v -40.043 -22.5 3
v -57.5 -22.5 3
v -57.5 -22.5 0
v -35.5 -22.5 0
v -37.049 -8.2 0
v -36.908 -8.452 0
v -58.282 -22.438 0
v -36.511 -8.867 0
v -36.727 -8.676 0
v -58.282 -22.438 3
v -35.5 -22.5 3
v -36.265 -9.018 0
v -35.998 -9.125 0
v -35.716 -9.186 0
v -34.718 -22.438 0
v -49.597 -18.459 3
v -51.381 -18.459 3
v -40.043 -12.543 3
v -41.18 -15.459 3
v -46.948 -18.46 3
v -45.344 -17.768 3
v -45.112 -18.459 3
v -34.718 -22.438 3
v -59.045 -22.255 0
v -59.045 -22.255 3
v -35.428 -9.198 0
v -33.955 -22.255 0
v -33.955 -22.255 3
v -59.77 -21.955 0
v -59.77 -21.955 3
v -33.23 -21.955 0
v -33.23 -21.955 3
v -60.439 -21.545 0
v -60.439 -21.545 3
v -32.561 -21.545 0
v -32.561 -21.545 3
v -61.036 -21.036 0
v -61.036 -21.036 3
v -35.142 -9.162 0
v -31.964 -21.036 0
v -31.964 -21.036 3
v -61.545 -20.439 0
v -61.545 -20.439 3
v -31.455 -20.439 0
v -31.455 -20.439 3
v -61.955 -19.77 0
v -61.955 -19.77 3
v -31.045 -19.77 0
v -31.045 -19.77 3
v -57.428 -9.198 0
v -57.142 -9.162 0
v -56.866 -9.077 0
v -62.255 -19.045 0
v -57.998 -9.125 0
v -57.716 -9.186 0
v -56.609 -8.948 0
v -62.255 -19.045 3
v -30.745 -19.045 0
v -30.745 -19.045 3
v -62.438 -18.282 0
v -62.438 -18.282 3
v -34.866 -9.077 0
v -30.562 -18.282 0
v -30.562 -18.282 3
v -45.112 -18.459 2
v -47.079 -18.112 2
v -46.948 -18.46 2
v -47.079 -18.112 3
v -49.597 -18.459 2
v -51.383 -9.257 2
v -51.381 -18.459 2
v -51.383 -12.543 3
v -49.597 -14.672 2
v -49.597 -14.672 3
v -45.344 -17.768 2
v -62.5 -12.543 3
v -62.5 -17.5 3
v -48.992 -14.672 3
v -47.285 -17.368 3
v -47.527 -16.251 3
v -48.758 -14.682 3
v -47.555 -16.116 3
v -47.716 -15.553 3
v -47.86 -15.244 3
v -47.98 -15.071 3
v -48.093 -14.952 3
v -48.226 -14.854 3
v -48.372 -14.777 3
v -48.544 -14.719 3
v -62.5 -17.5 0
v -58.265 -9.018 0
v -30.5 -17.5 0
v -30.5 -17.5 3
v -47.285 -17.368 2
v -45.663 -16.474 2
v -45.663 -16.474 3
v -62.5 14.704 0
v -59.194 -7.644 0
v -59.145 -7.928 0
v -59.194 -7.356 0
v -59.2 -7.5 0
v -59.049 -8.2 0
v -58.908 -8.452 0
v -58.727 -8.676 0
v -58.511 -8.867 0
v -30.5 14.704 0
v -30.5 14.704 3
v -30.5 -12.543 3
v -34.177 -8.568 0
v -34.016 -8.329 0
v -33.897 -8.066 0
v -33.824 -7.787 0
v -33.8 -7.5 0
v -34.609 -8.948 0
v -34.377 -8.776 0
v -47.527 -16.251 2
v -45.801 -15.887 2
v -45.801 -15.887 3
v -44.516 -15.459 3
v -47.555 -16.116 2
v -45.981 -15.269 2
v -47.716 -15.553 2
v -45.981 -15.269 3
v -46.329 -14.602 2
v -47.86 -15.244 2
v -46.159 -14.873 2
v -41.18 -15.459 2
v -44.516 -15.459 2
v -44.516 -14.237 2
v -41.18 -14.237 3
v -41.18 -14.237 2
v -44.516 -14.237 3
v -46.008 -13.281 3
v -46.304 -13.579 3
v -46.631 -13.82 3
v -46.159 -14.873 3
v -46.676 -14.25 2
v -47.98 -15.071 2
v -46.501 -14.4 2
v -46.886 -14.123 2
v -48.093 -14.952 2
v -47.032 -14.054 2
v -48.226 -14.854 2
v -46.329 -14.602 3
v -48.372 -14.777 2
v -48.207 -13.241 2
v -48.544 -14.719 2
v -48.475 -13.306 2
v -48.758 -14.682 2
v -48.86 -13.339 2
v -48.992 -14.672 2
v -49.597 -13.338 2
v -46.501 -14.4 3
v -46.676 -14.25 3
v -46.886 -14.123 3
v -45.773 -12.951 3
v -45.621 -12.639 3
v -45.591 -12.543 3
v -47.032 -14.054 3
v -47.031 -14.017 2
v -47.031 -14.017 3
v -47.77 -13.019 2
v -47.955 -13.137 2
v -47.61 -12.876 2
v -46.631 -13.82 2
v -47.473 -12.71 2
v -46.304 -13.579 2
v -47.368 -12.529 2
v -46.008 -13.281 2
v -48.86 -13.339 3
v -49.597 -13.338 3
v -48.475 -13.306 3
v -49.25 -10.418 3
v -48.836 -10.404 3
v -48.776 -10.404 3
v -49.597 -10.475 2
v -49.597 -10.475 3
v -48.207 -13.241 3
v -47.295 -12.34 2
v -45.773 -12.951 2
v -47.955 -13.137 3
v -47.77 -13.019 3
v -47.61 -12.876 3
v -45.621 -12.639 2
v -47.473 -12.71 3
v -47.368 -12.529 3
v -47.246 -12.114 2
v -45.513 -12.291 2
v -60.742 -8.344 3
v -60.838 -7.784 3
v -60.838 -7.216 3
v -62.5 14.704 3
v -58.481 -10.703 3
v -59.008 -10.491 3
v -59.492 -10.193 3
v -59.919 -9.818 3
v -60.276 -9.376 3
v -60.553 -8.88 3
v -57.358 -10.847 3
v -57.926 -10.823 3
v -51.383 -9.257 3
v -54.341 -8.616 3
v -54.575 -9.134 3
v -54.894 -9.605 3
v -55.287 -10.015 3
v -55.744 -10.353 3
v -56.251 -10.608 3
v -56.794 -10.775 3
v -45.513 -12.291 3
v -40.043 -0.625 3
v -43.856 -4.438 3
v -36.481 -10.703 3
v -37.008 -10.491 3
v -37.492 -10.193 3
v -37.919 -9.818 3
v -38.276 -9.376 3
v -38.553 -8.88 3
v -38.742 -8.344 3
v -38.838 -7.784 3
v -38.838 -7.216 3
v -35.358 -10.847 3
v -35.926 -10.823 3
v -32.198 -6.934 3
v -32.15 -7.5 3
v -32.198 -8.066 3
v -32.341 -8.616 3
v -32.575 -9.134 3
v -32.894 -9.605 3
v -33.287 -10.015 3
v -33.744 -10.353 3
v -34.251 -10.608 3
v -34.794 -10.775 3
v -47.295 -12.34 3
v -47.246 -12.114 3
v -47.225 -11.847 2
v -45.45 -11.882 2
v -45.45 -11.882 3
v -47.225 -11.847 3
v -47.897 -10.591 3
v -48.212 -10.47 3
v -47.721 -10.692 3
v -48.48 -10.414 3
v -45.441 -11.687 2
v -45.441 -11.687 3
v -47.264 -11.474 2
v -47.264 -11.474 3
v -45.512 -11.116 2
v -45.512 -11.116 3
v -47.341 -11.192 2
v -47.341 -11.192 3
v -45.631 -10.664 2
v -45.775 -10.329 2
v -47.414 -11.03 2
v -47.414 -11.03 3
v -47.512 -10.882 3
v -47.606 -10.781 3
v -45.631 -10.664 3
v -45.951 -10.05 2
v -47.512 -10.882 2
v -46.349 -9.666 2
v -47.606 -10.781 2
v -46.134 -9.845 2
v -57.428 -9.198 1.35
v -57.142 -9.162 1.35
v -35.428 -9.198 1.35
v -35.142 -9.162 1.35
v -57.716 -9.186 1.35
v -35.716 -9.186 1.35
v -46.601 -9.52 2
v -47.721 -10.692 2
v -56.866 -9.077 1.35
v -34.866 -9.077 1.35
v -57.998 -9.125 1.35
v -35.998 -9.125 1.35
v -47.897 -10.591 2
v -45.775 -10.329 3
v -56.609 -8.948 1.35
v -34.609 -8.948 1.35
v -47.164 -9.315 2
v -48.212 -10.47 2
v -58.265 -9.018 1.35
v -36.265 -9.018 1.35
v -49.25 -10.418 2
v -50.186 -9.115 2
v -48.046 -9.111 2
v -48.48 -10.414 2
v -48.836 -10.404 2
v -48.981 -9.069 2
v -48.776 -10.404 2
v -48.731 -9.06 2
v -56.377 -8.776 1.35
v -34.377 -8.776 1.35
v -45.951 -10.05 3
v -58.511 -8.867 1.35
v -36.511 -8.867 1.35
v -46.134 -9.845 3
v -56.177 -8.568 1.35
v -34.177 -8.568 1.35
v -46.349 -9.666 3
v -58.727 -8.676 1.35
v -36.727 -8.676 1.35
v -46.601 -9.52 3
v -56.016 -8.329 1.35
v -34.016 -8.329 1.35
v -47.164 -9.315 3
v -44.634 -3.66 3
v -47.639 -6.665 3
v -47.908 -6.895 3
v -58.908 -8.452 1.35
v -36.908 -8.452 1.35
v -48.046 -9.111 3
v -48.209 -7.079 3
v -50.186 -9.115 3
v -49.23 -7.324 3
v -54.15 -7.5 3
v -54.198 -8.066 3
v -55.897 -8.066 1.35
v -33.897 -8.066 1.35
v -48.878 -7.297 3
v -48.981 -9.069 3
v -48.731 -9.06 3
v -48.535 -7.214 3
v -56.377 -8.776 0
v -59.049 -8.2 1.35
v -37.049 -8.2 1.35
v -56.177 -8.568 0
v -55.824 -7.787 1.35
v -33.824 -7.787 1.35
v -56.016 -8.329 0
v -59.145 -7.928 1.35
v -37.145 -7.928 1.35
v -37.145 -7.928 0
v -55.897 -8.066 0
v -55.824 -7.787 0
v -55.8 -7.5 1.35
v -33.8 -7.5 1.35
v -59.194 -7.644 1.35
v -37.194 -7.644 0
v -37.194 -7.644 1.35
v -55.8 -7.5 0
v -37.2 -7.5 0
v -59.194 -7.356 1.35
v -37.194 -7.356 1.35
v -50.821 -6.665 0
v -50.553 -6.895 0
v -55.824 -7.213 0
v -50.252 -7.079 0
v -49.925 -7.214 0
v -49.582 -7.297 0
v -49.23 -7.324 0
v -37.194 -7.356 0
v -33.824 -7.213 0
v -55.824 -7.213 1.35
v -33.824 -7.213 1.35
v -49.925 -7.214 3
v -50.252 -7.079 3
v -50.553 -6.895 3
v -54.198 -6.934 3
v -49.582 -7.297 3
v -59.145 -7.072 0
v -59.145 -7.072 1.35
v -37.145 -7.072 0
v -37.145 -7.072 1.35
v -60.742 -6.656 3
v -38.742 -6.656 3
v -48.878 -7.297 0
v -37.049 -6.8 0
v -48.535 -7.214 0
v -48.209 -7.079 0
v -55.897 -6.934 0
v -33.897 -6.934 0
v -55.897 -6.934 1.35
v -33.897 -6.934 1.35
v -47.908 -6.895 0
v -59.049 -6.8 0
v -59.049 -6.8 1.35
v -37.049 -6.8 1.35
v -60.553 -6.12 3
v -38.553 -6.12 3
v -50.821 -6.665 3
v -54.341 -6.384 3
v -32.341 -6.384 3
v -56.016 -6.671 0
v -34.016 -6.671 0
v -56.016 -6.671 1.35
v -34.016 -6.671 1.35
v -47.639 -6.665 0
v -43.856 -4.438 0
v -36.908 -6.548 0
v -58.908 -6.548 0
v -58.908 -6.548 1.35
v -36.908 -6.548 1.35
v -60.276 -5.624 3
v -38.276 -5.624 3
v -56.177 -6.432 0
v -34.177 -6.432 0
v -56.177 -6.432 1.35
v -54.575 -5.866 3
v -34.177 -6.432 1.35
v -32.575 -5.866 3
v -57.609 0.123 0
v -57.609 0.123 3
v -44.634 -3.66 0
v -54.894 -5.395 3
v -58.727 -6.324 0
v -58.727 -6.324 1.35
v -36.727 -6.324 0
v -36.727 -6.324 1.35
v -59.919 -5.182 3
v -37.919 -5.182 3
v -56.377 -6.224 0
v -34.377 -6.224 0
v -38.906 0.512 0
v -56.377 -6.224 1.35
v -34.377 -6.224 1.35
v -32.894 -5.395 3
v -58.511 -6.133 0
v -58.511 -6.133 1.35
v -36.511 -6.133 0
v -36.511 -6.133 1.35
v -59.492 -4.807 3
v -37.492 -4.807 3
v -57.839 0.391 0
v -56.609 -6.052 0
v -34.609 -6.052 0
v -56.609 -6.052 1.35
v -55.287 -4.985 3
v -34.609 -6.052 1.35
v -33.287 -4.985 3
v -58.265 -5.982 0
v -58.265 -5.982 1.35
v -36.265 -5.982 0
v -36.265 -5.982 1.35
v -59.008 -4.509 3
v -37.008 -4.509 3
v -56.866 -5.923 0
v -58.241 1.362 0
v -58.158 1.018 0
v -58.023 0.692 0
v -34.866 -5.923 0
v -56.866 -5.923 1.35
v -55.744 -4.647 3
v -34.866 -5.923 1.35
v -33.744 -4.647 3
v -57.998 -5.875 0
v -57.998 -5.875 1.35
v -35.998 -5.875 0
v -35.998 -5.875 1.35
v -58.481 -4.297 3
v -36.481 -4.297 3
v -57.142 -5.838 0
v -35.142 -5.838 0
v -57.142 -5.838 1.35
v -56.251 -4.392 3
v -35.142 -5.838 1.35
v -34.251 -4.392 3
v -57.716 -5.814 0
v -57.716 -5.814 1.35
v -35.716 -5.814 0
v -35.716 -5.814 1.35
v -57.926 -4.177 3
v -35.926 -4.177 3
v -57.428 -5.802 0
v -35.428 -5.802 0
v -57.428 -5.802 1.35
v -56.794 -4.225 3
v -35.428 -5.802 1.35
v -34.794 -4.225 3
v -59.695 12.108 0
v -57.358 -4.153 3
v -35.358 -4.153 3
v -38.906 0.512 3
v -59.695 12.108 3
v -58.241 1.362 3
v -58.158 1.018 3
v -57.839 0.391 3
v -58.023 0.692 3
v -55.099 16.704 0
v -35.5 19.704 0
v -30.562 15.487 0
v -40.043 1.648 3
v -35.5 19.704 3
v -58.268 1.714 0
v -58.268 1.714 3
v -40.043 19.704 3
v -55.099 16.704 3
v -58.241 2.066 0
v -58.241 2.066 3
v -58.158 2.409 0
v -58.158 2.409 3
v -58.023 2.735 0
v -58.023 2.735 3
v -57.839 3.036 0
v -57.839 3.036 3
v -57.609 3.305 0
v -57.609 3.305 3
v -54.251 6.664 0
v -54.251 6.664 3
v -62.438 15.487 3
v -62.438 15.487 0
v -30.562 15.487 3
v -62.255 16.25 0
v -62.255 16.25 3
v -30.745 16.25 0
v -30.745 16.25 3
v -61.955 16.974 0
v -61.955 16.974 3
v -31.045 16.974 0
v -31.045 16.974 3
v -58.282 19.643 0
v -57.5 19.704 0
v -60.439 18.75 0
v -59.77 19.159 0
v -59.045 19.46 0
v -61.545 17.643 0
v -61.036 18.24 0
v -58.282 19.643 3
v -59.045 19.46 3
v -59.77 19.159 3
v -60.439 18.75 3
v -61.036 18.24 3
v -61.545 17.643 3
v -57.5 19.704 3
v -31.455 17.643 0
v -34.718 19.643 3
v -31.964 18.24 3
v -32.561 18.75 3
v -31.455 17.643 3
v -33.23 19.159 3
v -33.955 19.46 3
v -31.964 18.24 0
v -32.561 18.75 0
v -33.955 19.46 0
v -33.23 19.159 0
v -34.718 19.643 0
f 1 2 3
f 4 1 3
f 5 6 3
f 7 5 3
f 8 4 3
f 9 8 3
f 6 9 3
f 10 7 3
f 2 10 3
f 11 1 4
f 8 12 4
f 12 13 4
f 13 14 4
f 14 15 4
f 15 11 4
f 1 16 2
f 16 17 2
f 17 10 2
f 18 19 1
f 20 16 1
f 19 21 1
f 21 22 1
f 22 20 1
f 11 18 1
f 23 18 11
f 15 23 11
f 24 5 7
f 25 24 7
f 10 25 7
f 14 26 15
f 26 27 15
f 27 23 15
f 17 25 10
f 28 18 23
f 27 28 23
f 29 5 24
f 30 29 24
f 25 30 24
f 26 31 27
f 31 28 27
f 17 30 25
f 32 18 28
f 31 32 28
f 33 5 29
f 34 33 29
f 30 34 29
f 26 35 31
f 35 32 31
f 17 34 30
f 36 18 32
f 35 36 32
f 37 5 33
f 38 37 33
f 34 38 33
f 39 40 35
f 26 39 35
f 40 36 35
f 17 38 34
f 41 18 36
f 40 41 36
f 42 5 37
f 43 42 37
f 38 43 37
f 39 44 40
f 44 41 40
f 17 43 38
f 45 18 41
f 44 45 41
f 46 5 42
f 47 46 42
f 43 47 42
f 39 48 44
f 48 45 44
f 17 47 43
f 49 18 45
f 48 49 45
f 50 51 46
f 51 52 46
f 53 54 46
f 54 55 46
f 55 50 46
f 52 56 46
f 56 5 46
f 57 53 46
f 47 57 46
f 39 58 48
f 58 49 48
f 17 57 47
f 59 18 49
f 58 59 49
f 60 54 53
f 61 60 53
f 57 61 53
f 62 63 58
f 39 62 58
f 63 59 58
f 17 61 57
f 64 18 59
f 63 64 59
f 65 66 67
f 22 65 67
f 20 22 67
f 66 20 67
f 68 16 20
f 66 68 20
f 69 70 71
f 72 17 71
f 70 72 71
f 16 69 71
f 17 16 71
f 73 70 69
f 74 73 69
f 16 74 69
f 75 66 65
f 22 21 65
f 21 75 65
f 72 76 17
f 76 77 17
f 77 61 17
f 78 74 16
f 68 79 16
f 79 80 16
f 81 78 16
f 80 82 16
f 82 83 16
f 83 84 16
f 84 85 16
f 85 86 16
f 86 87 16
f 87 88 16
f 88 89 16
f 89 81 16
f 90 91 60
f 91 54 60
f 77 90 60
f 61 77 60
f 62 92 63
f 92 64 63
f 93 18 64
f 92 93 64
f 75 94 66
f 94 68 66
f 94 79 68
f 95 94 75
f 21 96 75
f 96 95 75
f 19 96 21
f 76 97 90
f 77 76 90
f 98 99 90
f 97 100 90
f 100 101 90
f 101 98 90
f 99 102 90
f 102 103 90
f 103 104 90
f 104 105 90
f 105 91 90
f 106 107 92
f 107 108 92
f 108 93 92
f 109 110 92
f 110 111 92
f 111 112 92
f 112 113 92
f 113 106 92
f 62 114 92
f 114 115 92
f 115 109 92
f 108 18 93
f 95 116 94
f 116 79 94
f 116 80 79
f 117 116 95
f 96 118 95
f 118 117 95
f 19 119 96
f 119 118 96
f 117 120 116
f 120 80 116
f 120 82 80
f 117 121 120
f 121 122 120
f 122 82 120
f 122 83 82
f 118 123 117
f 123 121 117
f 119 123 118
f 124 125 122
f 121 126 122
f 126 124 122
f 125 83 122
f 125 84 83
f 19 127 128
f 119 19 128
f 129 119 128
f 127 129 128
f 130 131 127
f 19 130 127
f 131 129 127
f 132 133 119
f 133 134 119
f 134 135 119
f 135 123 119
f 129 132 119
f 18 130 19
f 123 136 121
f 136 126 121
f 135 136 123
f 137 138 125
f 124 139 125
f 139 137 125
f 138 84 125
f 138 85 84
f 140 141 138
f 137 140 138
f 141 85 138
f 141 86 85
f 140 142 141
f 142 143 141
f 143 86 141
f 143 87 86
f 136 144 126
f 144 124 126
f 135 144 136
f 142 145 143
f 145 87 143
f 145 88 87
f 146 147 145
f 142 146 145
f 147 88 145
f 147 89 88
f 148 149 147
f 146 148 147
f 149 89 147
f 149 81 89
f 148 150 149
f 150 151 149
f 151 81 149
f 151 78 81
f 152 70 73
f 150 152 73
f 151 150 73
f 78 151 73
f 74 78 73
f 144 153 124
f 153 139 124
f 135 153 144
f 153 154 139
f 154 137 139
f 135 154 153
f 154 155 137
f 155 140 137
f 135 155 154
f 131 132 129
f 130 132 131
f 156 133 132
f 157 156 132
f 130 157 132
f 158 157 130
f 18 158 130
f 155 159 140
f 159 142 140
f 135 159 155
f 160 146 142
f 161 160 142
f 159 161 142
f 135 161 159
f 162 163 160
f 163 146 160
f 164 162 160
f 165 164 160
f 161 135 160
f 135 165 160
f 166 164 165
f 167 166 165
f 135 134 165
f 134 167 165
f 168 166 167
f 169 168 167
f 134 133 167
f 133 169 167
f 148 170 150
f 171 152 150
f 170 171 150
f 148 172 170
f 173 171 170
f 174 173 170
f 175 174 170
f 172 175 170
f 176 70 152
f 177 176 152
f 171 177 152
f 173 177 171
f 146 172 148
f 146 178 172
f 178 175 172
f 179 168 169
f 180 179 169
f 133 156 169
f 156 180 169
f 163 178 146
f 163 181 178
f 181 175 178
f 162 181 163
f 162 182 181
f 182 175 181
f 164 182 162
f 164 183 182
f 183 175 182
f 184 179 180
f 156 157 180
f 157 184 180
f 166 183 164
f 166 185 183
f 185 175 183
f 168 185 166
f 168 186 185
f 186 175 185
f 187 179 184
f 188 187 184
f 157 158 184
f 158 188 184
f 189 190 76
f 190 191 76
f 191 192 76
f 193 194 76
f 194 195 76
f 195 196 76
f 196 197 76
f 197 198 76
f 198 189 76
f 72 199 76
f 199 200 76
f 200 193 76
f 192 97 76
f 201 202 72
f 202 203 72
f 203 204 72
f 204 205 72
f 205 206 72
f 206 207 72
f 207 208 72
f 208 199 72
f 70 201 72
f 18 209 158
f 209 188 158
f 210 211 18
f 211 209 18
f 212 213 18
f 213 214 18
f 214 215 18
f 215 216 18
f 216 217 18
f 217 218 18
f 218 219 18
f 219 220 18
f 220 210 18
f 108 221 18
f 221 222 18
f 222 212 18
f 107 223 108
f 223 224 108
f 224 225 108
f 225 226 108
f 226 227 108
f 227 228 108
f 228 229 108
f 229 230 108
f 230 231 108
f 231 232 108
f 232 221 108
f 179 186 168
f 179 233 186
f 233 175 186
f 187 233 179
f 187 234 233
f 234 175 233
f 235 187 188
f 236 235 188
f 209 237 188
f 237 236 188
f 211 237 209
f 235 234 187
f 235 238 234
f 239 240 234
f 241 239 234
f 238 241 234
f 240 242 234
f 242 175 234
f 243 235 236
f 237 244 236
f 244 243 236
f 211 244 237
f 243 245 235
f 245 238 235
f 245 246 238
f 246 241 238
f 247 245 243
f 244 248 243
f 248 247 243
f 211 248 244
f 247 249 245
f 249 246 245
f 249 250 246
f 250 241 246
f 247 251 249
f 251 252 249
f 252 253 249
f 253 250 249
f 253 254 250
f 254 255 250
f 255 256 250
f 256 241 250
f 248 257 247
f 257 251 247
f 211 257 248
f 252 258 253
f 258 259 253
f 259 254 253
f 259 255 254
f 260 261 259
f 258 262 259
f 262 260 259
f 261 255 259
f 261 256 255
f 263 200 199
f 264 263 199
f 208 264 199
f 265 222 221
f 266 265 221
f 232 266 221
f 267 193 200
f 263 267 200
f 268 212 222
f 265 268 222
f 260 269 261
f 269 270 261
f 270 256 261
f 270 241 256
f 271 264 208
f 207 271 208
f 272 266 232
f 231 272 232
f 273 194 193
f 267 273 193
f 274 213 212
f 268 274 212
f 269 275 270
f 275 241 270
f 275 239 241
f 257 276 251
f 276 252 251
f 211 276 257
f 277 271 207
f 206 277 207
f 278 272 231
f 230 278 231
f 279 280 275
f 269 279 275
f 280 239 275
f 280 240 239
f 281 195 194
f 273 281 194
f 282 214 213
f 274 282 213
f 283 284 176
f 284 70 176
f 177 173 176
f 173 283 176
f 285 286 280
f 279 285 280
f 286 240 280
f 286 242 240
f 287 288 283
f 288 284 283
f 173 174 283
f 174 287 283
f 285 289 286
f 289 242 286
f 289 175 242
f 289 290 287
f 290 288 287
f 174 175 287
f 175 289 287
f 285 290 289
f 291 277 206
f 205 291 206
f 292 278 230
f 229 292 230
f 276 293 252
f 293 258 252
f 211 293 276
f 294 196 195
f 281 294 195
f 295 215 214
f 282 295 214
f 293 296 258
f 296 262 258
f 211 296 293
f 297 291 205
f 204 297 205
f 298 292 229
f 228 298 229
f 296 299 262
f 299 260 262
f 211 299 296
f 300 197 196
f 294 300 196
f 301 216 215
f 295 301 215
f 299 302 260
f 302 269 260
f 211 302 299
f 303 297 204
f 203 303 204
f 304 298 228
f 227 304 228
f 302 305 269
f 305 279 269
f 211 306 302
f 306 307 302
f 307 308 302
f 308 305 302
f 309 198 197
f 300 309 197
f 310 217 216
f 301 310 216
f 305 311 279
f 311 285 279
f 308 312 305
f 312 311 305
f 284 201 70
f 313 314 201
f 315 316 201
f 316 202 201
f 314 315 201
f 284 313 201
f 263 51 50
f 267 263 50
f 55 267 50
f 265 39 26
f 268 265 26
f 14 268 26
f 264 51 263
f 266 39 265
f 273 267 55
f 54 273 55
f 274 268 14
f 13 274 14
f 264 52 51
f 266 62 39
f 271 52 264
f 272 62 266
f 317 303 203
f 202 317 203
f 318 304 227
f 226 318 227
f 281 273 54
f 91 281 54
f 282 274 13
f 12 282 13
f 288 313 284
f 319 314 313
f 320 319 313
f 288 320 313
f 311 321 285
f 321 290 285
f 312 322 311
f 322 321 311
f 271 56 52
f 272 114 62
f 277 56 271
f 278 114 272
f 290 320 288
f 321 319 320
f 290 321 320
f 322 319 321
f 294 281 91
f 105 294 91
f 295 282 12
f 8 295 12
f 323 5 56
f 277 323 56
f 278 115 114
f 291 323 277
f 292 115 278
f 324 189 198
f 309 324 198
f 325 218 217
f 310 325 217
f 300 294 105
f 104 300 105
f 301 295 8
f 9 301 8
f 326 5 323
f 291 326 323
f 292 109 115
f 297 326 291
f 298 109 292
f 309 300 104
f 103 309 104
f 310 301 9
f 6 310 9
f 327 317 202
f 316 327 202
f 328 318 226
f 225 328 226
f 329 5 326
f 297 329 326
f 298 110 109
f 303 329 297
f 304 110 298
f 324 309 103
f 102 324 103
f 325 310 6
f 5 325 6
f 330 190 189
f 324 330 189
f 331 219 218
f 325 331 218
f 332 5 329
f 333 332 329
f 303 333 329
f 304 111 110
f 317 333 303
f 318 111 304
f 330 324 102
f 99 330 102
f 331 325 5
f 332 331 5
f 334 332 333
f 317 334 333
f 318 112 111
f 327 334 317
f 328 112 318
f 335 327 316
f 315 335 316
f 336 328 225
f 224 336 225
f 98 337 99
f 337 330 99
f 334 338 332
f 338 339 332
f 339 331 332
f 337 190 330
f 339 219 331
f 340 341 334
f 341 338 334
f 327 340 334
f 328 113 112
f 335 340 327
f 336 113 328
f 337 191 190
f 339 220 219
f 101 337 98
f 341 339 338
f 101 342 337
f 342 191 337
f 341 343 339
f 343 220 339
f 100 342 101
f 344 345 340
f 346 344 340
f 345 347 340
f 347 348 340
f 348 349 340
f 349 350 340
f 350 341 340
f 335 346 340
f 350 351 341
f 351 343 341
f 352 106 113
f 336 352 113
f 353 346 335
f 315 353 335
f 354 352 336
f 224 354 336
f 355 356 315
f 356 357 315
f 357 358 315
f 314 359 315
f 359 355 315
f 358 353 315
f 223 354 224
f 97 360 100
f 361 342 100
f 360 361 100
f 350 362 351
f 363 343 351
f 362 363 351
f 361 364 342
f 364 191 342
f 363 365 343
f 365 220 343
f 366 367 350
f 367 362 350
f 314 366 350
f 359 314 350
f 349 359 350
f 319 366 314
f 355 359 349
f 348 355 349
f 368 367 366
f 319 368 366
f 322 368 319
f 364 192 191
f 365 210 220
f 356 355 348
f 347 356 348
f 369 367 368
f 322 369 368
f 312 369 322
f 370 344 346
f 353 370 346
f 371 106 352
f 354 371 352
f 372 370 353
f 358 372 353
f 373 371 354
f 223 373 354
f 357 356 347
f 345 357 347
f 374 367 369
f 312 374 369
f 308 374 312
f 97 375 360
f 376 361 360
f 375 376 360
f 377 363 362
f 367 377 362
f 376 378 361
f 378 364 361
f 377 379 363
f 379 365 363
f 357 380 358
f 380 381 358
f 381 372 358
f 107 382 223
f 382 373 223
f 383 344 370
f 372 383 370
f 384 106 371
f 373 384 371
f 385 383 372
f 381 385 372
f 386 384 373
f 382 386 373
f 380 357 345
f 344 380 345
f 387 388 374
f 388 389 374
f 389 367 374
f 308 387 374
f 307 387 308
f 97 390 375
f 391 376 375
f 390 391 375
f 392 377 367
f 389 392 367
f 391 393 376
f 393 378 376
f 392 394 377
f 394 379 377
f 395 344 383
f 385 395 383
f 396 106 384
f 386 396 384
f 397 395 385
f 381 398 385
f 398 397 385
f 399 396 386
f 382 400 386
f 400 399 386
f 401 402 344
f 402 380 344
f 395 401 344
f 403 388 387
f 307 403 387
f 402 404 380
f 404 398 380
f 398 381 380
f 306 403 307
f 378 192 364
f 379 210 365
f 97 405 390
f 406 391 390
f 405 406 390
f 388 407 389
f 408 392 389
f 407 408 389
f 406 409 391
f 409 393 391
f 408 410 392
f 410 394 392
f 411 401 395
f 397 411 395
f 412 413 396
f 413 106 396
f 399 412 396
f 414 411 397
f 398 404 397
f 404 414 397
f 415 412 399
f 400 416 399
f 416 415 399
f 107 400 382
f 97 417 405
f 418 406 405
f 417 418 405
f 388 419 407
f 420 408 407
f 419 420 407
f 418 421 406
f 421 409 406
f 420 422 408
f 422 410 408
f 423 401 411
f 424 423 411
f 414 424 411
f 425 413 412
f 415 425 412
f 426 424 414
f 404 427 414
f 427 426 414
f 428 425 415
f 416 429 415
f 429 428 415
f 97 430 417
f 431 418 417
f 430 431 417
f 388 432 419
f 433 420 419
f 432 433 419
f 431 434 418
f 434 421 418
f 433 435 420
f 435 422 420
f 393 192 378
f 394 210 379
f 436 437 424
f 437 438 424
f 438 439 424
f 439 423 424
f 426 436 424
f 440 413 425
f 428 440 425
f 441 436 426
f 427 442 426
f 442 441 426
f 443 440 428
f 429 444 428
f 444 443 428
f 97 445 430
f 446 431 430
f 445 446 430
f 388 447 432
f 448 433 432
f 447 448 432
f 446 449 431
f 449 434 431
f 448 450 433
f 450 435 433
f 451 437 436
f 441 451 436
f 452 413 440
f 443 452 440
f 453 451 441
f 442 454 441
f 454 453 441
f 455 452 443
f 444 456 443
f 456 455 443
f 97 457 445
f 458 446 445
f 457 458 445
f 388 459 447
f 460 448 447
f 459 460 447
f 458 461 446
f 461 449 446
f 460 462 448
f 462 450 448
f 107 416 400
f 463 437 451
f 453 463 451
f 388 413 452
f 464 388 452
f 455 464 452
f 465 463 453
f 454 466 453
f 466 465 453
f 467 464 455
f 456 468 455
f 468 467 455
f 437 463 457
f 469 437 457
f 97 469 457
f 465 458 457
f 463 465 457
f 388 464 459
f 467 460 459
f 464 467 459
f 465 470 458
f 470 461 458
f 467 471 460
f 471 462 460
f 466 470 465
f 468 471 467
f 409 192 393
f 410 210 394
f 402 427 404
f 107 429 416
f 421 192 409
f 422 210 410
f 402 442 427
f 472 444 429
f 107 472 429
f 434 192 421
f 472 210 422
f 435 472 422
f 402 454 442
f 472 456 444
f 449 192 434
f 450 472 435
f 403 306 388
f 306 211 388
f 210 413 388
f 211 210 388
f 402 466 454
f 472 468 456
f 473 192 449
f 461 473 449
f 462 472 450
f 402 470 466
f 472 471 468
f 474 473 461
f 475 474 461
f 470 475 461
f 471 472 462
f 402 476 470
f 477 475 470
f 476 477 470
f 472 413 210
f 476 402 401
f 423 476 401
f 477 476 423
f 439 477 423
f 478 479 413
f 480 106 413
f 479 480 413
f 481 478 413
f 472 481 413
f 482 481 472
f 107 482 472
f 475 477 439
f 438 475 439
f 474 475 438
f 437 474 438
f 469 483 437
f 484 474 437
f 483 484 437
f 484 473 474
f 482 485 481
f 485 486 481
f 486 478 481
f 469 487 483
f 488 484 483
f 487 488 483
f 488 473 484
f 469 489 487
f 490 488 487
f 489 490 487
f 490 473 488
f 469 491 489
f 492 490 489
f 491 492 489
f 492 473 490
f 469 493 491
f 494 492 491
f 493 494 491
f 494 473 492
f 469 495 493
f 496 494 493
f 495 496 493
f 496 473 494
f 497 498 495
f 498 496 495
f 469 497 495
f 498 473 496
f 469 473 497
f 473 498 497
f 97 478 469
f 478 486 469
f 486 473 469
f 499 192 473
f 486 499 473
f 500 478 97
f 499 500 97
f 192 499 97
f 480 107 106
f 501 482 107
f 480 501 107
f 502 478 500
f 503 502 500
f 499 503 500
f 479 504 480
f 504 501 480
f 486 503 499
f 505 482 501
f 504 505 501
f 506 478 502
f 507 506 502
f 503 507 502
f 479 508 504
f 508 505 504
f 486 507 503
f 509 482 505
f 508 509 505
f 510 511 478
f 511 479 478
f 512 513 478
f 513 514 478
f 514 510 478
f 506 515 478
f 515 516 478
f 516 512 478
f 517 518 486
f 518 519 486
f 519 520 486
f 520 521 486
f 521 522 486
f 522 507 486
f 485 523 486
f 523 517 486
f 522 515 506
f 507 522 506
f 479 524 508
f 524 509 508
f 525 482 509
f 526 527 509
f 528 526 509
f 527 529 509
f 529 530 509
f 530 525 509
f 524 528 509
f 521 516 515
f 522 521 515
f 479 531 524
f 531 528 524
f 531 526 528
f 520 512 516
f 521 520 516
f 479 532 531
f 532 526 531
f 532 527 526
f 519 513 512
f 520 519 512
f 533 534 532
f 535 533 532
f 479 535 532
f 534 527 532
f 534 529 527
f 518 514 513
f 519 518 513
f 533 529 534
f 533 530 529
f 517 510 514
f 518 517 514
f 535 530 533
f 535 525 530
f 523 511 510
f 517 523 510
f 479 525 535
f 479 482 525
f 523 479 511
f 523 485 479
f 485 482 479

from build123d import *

# Parameters (mm, degrees)
SKETCH2_W                                           = 32
SKETCH2_H                                           = 42.204432033
BOSS_EXTRUDE2_DEPTH                                 = 3
FILLET1_R                                           = 5
SKETCH3_W                                           = 3.336226562
SKETCH3_H                                           = 1.222113554
CUT_EXTRUDE1_DEPTH                                  = 1
CSK_FOR_M3_COUNTERSUNK_FLAT_HEAD_SCREW1_D           = 3.4
CSK_FOR_M3_COUNTERSUNK_FLAT_HEAD_SCREW1_DEPTH       = 20
CSK_FOR_M3_COUNTERSUNK_FLAT_HEAD_SCREW1_CSINK_D     = 6.7
CSK_FOR_M3_COUNTERSUNK_FLAT_HEAD_SCREW1_CSINK_ANGLE = 90
CSK_FOR_M3_COUNTERSUNK_FLAT_HEAD_SCREW1_TIP         = 1.021463052
CUT_EXTRUDE3_DEPTH                                  = 10


with BuildPart() as part:
    # Sketch2 → Boss-Extrude2 (new body)
    with BuildSketch(Plane.XY):
        with Locations((-46.5, -1.397783984)):
            Rectangle(SKETCH2_W, SKETCH2_H)
    extrude(amount=BOSS_EXTRUDE2_DEPTH)

    # Fillet1
    fillet1_edges = [part.edges().sort_by_distance(p)[0] for p in [
        (-62.5, 19.704432033, 1.5),
        (-30.5, 19.704432033, 1.5),
        (-30.5, -22.5, 1.5),
        (-62.5, -22.5, 1.5),
    ]]
    fillet(fillet1_edges, radius=FILLET1_R)

    # Sketch3 → Cut-Extrude1 (cut)
    with BuildSketch(Plane.XY.offset(3)):
        with BuildLine():
            Line((-51.381425439, -18.458875061), (-49.597421385, -18.458875061))
            Line((-49.597421385, -18.458875061), (-49.597421385, -14.672122679))
            Line((-49.597421385, -14.672122679), (-48.991938415, -14.672122679))
            add(Edge.make_bspline(
                [(-48.991938415, -14.672122679), (-48.942050564, -14.6725211), (-48.843919084, -14.673304811), (-48.701136712, -14.687536776), (-48.566178681, -14.711269605), (-48.441222715, -14.74890661), (-48.32427753, -14.795186794), (-48.218202264, -14.856795477), (-48.11890245, -14.926037335), (-48.029787183, -15.010644116), (-47.94865002, -15.109304476), (-47.870329282, -15.22163632), (-47.801359571, -15.353586411), (-47.734046558, -15.500135947), (-47.675917518, -15.664809001), (-47.618382932, -15.843956856), (-47.570508607, -16.041536599), (-47.542007813, -16.179191645), (-47.527206071, -16.25068209)],
                knots=[0, 0, 0, 0, 0.000149599, 0.000294267, 0.000429961, 0.000559969, 0.000685182, 0.000806276, 0.000927115, 0.001047609, 0.001173509, 0.001309883, 0.001457588, 0.001619475, 0.001793345, 0.001981055, 0.002183769, 0.002402801, 0.002402801, 0.002402801, 0.002402801], degree=3))
            add(Edge.make_bspline(
                [(-47.527206071, -16.25068209), (-47.500027556, -16.387123246), (-47.447932519, -16.648649934), (-47.367799698, -17.023584407), (-47.286395279, -17.362673147), (-47.211369572, -17.666100231), (-47.134583702, -17.927379781), (-47.069987521, -18.146751884), (-47.009849282, -18.32008565), (-46.966417008, -18.417682148), (-46.947756493, -18.45961412)],
                knots=[0, 0, 0, 0, 0.000417367, 0.000799998, 0.001150089, 0.001463532, 0.001737527, 0.001966934, 0.002149658, 0.002287303, 0.002287303, 0.002287303, 0.002287303], degree=3))
            Line((-46.947756493, -18.45961412), (-45.111733669, -18.458875061))
            add(Edge.make_bspline(
                [(-45.111733669, -18.458875061), (-45.136394395, -18.402686862), (-45.192836553, -18.274086301), (-45.264632108, -18.048232695), (-45.345858267, -17.770288113), (-45.428958388, -17.444111213), (-45.51591734, -17.08294144), (-45.610026609, -16.699954349), (-45.704155867, -16.299301278), (-45.768362179, -16.026508782), (-45.80114869, -15.887209172)],
                knots=[0, 0, 0, 0, 0.000183977, 0.000421076, 0.000710029, 0.001052867, 0.00143062, 0.001824558, 0.002235981, 0.002665299, 0.002665299, 0.002665299, 0.002665299], degree=3))
            add(Edge.make_bspline(
                [(-45.80114869, -15.887209172), (-45.828641018, -15.773168942), (-45.881780404, -15.5527428), (-45.987295673, -15.242137194), (-46.108403792, -14.961961493), (-46.246109756, -14.712628496), (-46.405457942, -14.494327391), (-46.588613385, -14.309294243), (-46.799272936, -14.160659908), (-46.954100619, -14.089741414), (-47.032040068, -14.054041414)],
                knots=[0, 0, 0, 0, 0.000351778, 0.000679945, 0.00098268, 0.001266475, 0.001532679, 0.001790935, 0.002044255, 0.002301038, 0.002301038, 0.002301038, 0.002301038], degree=3))
            Line((-47.032040068, -14.054041414), (-47.030656262, -14.017001018))
            add(Edge.make_bspline(
                [(-47.030656262, -14.017001018), (-46.922273974, -13.970005767), (-46.706005829, -13.876230519), (-46.411856808, -13.676157256), (-46.14181559, -13.438863882), (-45.942211161, -13.208200023), (-45.802357006, -13.003332314), (-45.709339658, -12.840203194), (-45.629535439, -12.668874791), (-45.565066724, -12.488727388), (-45.51180506, -12.300576236), (-45.473637881, -12.103222096), (-45.448546386, -11.89781805), (-45.443663093, -11.757970901), (-45.441187588, -11.68707768)],
                knots=[0, 0, 0, 0, 0.000353722, 0.000705825, 0.001061629, 0.00143016, 0.001617179, 0.001805135, 0.001992894, 0.002183416, 0.002378543, 0.002578963, 0.00278587, 0.002998596, 0.002998596, 0.002998596, 0.002998596], degree=3))
            add(Edge.make_bspline(
                [(-45.441187588, -11.68707768), (-45.446164978, -11.614412673), (-45.455946444, -11.471612893), (-45.485146081, -11.263842973), (-45.519750271, -11.065622921), (-45.563079094, -10.87842638), (-45.616257063, -10.701449), (-45.677340843, -10.534699828), (-45.747075442, -10.378252437), (-45.826987856, -10.232984263), (-45.914816466, -10.098344998), (-46.008796832, -9.971834439), (-46.116049062, -9.860313263), (-46.228017531, -9.754798011), (-46.351436153, -9.662838486), (-46.482253648, -9.578828028), (-46.62263241, -9.507518301), (-46.818699815, -9.427166253), (-47.06746288, -9.344888092), (-47.360362202, -9.252977107), (-47.648888658, -9.184061361), (-47.928465046, -9.126227189), (-48.201942503, -9.088865813), (-48.467771392, -9.061958609), (-48.727193986, -9.057551627), (-48.897426641, -9.065240143), (-48.981097742, -9.069019128)],
                knots=[0, 0, 0, 0, 0.000218439, 0.000429273, 0.000629045, 0.000821988, 0.00100531, 0.001183082, 0.001354416, 0.001518656, 0.001679866, 0.001836496, 0.001990536, 0.002143381, 0.002297551, 0.002451481, 0.002609328, 0.002769115, 0.003086745, 0.003395031, 0.003689736, 0.003976245, 0.004251139, 0.004517418, 0.004777346, 0.005028594, 0.005028594, 0.005028594, 0.005028594], degree=3))
            add(Edge.make_bspline(
                [(-48.981097742, -9.069019128), (-49.204750164, -9.07164849), (-49.641894612, -9.076787763), (-50.178628932, -9.112050461), (-50.585677154, -9.150113546), (-50.867868242, -9.181499683), (-51.131979771, -9.216172913), (-51.301297073, -9.243625216), (-51.383179632, -9.256901264)],
                knots=[0, 0, 0, 0, 0.000670904, 0.001311329, 0.001612901, 0.001897363, 0.00216308, 0.002411924, 0.002411924, 0.002411924, 0.002411924], degree=3))
            Line((-51.383179632, -9.256901264), (-51.381425439, -18.458875061))
        make_face()
        with BuildLine():
            add(Edge.make_bspline(
                [(-49.597421385, -10.475098321), (-49.553118884, -10.463741178), (-49.449324767, -10.437133094), (-49.26651153, -10.418528414), (-49.036966225, -10.403821129), (-48.868179272, -10.40361956), (-48.775656528, -10.403509067)],
                knots=[0, 0, 0, 0, 0.000137048, 0.000321084, 0.000549784, 0.00082724, 0.00082724, 0.00082724, 0.00082724], degree=3))
            add(Edge.make_bspline(
                [(-48.775656528, -10.403509067), (-48.688241346, -10.402981113), (-48.513173263, -10.40192377), (-48.25262374, -10.452443011), (-47.99710085, -10.54015698), (-47.790180436, -10.642172207), (-47.635138174, -10.749873331), (-47.531709547, -10.851803167), (-47.444125211, -10.972739958), (-47.368662464, -11.111515899), (-47.313363495, -11.270485036), (-47.266241854, -11.445599811), (-47.237372321, -11.640002112), (-47.229365771, -11.775957367), (-47.225189927, -11.846865291)],
                knots=[0, 0, 0, 0, 0.000261725, 0.000524161, 0.000791249, 0.001070808, 0.00121308, 0.001355871, 0.001504077, 0.001659631, 0.001827951, 0.00200768, 0.002203123, 0.002416175, 0.002416175, 0.002416175, 0.002416175], degree=3))
            add(Edge.make_bspline(
                [(-47.225189927, -11.846865291), (-47.227175329, -11.901954186), (-47.231054857, -12.009599393), (-47.252578328, -12.166460507), (-47.285644456, -12.315396112), (-47.332465946, -12.455901219), (-47.395176387, -12.587424294), (-47.470077536, -12.710240218), (-47.559607688, -12.823418468), (-47.659086339, -12.929228854), (-47.771771397, -13.023790308), (-47.894893734, -13.107175482), (-48.0305682, -13.175598565), (-48.175685207, -13.233265514), (-48.331962757, -13.279426838), (-48.49835821, -13.311908188), (-48.675604243, -13.333661231), (-48.79724634, -13.337439587), (-48.859940103, -13.339386933)],
                knots=[0, 0, 0, 0, 0.000165289, 0.000322979, 0.000474201, 0.000622458, 0.000766196, 0.000910448, 0.001053055, 0.001198372, 0.001345408, 0.001493457, 0.001643451, 0.001800288, 0.001961411, 0.002131526, 0.002308376, 0.002496463, 0.002496463, 0.002496463, 0.002496463], degree=3))
            Line((-48.859940103, -13.339386933), (-49.597421385, -13.33763274))
            Line((-49.597421385, -13.33763274), (-49.597421385, -10.475098321))
        make_face(mode=Mode.SUBTRACT)
        with Locations((-42.847712603, -14.847712603)):
            Rectangle(SKETCH3_W, SKETCH3_H)
    extrude(amount=-CUT_EXTRUDE1_DEPTH, mode=Mode.SUBTRACT)

    # CSK for M3 Countersunk Flat Head Screw1
    with Locations(Plane(origin=(-57.5, -7.5, 3), x_dir=(1, 0, 0), z_dir=(0, 0, 1))):
        with Locations((0, 0), (22, 0)):
            CounterSinkHole(CSK_FOR_M3_COUNTERSUNK_FLAT_HEAD_SCREW1_D / 2, CSK_FOR_M3_COUNTERSUNK_FLAT_HEAD_SCREW1_CSINK_D / 2, depth=CSK_FOR_M3_COUNTERSUNK_FLAT_HEAD_SCREW1_DEPTH, counter_sink_angle=CSK_FOR_M3_COUNTERSUNK_FLAT_HEAD_SCREW1_CSINK_ANGLE)
            with Locations((0, 0, -(CSK_FOR_M3_COUNTERSUNK_FLAT_HEAD_SCREW1_DEPTH + CSK_FOR_M3_COUNTERSUNK_FLAT_HEAD_SCREW1_TIP / 2))):  # 118° drill point
                Cone(0, CSK_FOR_M3_COUNTERSUNK_FLAT_HEAD_SCREW1_D / 2, CSK_FOR_M3_COUNTERSUNK_FLAT_HEAD_SCREW1_TIP, mode=Mode.SUBTRACT)

    # Sketch13 → Cut-Extrude3 (cut)
    with BuildSketch(Plane(origin=(0, 0, 0), x_dir=(-1, 0, 0), z_dir=(0, 0, -1))):
        with BuildLine():
            Line((55.099076528, 16.704432033), (59.695270606, 12.108237955))
            Line((59.695270606, 12.108237955), (54.250548391, 6.66351574))
            Line((54.250548391, 6.66351574), (57.609305602, 3.304758529))
            ThreePointArc((57.609305602, 3.304758529), (58.268315344, 1.713768272), (57.609305602, 0.122778014))
            Line((57.609305602, 0.122778014), (50.821080502, -6.665447085))
            ThreePointArc((50.821080502, -6.665447085), (49.230090245, -7.324456828), (47.639099987, -6.665447085))
            Line((47.639099987, -6.665447085), (44.633896167, -3.660243265))
            Line((44.633896167, -3.660243265), (43.856078708, -4.438060725))
            Line((43.856078708, -4.438060725), (43.325748622, -3.907730639))
            Line((43.325748622, -3.907730639), (38.906331239, 0.511686744))
            Line((38.906331239, 0.511686744), (40.709453531, 2.314809036))
            Line((40.709453531, 2.314809036), (47.921942699, 9.527298204))
            Line((47.921942699, 9.527298204), (55.099076528, 16.704432033))
        make_face()
    extrude(amount=-CUT_EXTRUDE3_DEPTH, mode=Mode.SUBTRACT)


solid = part.part
